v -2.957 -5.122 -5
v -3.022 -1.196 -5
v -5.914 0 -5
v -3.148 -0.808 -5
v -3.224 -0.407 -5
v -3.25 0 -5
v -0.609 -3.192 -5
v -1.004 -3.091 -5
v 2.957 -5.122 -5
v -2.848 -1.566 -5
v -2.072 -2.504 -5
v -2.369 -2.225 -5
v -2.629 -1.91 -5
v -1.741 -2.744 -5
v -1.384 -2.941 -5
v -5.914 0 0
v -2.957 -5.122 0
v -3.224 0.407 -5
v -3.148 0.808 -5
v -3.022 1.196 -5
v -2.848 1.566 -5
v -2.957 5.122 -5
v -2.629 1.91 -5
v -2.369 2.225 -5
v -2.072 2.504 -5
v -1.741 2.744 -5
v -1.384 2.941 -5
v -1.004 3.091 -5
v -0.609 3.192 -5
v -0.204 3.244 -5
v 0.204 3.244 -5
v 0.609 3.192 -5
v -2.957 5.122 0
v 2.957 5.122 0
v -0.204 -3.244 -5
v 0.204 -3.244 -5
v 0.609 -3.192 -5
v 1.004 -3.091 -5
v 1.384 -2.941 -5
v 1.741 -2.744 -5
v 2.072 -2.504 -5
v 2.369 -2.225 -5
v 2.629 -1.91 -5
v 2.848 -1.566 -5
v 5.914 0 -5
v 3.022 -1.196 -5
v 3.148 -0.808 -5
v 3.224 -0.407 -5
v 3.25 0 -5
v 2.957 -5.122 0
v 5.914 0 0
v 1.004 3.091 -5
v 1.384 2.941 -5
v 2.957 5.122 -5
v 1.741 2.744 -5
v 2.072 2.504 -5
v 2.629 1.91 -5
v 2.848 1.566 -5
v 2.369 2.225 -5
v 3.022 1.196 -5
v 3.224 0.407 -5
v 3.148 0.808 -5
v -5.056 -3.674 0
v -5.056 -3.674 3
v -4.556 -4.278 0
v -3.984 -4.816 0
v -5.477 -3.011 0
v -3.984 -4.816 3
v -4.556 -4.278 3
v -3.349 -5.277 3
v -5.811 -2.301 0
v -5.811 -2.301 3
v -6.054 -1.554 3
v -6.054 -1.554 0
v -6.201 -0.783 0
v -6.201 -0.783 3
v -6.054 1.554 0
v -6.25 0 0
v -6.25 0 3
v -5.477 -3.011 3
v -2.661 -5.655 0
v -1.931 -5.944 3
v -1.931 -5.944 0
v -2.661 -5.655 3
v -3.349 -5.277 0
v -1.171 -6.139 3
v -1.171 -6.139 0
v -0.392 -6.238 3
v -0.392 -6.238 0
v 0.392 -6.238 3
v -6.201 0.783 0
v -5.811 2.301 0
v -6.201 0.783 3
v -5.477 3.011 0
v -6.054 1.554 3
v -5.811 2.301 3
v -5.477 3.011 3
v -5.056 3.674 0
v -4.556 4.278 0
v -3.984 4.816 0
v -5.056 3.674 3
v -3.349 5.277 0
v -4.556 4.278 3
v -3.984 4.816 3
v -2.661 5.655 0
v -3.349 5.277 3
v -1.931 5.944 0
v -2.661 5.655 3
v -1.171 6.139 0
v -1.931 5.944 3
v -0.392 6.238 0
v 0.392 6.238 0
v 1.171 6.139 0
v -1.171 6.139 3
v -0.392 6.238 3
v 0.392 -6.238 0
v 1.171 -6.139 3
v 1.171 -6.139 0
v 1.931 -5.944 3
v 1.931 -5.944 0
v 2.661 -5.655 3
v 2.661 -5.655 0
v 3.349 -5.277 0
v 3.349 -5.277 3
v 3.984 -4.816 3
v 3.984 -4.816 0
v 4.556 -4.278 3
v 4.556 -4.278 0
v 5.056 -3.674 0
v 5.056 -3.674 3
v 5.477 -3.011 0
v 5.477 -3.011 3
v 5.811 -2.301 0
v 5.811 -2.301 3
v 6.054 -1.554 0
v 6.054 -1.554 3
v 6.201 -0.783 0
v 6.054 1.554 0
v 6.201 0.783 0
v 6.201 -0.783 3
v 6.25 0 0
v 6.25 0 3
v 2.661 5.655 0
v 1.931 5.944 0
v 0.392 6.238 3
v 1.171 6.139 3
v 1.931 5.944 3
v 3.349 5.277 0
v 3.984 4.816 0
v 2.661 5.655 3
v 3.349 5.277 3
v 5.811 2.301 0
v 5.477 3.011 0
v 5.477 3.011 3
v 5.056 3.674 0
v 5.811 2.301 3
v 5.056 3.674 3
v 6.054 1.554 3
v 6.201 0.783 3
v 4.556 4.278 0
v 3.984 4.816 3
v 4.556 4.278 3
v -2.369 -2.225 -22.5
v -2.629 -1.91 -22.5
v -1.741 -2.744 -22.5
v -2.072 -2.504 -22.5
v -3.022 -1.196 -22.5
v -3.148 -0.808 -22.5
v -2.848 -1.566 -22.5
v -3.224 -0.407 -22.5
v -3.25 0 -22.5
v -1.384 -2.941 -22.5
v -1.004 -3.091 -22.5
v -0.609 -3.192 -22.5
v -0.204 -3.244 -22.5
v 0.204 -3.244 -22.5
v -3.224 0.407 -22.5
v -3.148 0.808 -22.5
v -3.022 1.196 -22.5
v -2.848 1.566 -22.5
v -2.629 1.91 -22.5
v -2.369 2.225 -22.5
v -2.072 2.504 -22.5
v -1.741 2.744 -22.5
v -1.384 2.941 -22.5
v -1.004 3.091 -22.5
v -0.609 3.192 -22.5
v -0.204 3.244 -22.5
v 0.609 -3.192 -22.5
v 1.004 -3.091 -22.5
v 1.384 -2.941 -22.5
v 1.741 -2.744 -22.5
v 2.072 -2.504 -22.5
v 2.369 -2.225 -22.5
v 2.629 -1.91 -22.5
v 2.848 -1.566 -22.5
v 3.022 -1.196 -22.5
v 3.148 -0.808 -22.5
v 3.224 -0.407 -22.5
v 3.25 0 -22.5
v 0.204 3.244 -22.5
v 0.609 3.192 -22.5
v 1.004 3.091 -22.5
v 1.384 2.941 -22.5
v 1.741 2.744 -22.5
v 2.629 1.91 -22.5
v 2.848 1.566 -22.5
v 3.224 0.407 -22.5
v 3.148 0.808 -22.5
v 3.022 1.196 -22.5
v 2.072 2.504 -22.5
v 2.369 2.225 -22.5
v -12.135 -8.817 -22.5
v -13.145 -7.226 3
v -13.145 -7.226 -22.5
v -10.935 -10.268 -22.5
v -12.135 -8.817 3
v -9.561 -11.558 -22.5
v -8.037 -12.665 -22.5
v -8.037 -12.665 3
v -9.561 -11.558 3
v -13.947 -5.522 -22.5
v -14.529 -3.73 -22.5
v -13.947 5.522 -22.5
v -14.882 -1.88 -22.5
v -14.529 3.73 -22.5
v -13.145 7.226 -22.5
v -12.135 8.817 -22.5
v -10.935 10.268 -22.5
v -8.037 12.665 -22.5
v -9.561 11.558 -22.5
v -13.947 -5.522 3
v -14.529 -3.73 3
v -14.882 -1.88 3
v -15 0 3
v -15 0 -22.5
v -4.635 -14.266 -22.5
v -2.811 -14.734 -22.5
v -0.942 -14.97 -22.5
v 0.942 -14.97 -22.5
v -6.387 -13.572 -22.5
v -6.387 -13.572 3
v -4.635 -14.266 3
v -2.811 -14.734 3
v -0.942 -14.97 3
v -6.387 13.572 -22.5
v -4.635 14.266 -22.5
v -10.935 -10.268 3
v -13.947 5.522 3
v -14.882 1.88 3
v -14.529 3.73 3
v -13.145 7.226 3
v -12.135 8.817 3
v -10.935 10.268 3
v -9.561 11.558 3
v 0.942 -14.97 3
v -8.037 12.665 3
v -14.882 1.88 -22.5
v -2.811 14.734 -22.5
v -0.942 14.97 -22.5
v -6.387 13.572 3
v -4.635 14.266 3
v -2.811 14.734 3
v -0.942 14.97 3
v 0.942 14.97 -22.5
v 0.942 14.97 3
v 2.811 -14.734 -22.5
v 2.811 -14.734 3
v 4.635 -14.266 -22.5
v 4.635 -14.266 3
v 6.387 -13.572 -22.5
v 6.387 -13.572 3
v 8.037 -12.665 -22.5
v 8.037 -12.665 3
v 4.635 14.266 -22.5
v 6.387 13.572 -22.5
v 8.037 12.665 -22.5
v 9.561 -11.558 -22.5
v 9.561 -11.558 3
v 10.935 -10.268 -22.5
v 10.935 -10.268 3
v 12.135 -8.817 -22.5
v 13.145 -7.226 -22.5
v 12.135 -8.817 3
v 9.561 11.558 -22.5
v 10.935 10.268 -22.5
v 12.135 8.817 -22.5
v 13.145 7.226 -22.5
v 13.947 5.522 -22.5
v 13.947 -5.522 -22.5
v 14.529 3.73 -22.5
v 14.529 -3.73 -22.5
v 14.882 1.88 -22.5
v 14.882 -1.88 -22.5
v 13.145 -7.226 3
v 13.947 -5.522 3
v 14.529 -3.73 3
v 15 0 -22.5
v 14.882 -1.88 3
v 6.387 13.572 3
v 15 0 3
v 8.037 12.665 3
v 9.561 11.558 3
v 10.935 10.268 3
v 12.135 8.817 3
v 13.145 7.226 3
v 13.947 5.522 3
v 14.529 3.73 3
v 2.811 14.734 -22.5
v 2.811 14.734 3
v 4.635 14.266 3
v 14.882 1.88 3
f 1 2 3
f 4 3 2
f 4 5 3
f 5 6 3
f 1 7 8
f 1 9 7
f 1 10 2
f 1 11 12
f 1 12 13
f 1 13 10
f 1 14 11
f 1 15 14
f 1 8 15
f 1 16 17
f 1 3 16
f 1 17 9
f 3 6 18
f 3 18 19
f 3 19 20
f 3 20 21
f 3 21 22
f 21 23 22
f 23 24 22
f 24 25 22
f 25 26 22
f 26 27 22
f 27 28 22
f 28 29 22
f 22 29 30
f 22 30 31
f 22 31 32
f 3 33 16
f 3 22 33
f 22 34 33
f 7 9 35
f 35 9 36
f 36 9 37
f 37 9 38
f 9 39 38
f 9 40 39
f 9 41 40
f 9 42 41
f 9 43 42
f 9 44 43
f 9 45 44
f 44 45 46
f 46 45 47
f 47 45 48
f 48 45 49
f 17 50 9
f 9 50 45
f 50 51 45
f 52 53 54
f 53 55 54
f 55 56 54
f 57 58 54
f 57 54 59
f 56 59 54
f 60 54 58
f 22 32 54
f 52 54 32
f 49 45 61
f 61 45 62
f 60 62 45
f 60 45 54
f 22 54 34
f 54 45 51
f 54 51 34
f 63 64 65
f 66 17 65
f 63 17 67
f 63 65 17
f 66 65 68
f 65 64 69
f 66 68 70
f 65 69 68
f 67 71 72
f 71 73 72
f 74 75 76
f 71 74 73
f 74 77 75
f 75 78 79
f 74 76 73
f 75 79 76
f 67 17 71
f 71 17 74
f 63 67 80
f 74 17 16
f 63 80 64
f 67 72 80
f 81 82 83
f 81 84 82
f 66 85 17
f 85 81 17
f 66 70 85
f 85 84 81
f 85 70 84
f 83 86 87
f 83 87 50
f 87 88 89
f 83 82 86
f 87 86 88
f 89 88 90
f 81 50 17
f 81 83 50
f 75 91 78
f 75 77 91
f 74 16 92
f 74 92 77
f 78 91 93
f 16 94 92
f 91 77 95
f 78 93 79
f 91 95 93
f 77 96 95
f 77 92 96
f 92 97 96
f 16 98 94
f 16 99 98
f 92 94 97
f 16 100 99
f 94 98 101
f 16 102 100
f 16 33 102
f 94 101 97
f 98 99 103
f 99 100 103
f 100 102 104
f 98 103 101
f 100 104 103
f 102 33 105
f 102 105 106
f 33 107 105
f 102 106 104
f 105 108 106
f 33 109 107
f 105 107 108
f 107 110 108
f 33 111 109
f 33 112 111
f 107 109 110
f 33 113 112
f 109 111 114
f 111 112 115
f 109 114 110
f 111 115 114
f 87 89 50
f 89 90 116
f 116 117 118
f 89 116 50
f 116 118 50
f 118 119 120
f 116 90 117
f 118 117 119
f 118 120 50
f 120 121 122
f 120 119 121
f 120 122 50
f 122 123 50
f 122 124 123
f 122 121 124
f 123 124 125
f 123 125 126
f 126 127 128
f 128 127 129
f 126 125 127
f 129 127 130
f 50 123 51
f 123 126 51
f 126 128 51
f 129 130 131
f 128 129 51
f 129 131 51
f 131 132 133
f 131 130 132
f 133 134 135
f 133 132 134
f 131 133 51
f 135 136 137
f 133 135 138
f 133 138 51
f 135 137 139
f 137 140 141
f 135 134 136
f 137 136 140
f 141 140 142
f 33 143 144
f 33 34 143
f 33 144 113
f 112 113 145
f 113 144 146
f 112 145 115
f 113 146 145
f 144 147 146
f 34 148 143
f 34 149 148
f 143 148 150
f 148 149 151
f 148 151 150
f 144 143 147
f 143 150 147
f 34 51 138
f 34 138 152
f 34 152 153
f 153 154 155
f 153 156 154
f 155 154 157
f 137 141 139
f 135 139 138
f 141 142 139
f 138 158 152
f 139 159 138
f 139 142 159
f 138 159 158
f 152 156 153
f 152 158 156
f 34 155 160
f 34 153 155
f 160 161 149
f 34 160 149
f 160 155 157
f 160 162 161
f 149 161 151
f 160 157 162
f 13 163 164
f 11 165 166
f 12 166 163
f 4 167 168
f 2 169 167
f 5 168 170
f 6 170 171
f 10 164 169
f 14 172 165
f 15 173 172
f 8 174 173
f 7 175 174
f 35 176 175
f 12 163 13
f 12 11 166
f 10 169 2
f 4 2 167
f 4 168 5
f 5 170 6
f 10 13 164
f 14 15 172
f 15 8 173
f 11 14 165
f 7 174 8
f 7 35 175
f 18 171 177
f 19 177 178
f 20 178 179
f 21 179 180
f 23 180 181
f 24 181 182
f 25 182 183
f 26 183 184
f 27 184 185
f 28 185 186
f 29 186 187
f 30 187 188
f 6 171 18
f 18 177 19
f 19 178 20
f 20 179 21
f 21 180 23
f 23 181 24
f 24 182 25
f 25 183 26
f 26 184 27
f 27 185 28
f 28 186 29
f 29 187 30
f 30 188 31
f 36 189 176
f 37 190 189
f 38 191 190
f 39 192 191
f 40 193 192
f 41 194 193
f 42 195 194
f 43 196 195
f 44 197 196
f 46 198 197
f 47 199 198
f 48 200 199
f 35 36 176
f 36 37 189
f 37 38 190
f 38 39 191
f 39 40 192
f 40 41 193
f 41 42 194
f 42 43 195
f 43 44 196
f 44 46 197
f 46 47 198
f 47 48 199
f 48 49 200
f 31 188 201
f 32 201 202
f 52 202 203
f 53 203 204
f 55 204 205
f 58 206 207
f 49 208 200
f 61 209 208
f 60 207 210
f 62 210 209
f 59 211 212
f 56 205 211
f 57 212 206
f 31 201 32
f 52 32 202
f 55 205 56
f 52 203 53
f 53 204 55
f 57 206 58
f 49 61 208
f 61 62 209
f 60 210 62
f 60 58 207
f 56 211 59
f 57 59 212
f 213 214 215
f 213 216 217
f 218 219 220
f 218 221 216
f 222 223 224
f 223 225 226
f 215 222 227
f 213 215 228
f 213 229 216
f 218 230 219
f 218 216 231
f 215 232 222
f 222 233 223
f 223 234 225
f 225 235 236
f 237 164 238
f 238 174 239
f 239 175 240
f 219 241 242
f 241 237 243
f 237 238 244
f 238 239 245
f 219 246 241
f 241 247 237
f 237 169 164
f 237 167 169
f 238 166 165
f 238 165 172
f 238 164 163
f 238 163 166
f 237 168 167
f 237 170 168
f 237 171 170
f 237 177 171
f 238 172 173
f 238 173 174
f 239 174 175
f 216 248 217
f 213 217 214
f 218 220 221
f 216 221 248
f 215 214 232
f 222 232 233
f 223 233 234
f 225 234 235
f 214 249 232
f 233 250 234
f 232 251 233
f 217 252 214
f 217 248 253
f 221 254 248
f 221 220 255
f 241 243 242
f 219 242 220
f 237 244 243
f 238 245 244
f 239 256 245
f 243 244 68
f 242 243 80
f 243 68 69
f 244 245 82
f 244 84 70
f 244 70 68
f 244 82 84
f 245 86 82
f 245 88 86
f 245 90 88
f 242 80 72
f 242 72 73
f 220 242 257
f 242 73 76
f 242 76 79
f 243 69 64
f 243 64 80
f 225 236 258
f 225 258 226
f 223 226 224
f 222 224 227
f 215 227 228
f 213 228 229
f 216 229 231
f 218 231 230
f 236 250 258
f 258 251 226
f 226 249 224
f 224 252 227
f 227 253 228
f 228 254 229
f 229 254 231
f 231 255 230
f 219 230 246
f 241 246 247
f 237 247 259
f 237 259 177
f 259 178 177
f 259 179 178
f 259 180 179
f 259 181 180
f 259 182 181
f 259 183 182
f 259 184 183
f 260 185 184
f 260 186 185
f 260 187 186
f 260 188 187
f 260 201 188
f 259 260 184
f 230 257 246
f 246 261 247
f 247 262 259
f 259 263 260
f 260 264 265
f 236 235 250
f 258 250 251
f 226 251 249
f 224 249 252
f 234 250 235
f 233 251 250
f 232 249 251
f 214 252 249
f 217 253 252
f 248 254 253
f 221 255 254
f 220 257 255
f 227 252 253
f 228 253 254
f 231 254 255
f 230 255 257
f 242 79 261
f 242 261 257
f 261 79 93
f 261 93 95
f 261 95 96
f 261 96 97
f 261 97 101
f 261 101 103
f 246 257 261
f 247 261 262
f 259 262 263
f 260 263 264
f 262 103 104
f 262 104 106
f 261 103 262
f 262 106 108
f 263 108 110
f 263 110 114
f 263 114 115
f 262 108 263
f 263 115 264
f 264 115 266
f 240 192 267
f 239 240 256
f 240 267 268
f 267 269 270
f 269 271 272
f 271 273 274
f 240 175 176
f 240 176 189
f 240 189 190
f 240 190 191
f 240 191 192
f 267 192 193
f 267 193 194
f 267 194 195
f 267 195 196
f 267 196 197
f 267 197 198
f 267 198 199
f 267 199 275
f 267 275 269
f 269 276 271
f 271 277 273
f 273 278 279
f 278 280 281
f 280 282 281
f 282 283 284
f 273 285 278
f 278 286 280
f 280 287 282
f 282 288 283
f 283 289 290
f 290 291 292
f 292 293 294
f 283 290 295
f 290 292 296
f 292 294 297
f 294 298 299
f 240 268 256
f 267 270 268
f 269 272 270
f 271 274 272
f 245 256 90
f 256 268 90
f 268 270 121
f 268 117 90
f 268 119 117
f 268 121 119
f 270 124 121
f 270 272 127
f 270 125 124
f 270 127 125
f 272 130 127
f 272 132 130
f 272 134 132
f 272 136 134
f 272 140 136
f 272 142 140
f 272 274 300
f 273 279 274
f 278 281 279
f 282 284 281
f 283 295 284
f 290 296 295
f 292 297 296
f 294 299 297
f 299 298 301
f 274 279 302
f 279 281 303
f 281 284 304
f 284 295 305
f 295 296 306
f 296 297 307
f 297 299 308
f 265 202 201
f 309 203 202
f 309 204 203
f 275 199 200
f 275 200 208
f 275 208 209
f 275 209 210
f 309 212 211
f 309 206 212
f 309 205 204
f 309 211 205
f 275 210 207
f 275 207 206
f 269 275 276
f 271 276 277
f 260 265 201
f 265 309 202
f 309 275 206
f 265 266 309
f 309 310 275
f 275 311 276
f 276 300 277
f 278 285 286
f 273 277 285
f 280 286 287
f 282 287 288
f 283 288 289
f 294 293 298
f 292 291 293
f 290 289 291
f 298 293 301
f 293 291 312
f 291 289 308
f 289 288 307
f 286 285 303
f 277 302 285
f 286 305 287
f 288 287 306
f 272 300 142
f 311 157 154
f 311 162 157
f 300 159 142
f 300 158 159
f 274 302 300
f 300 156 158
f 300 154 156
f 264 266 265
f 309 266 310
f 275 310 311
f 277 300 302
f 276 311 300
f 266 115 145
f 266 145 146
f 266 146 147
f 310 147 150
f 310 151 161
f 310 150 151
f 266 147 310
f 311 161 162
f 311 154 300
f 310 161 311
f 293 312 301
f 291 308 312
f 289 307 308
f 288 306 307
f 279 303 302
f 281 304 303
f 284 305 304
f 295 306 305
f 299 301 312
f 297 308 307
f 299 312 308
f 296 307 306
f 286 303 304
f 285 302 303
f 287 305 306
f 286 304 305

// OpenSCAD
$fn = 50;

difference() {
	union() {
		translate(v = [0, 0, -22.5]) {
			cylinder(h = 25.5, r = 15.0);
		}
	}
	union() {
		translate(v = [0, 0, 0]) {
			rotate(a = [0, 0, 0]) {
				difference() {
					union() {
						translate(v = [0, 0, -5]) {
							linear_extrude(height = 5) {
								polygon(points = [[5.914249999999999, 0.0], [2.957125, 5.1218907443321156], [-2.9571249999999982, 5.1218907443321156], [-5.914249999999999, 7.242867331857232e-16], [-2.9571250000000022, -5.121890744332115], [2.9571249999999956, -5.121890744332118]]);
							}
						}
					}
					union();
				}
			}
		}
		#cylinder(h = 3, r = 6.25);
		#translate(v = [0, 0, -100.0]) {
			cylinder(h = 200, r = 3.25);
		}
	}
}
